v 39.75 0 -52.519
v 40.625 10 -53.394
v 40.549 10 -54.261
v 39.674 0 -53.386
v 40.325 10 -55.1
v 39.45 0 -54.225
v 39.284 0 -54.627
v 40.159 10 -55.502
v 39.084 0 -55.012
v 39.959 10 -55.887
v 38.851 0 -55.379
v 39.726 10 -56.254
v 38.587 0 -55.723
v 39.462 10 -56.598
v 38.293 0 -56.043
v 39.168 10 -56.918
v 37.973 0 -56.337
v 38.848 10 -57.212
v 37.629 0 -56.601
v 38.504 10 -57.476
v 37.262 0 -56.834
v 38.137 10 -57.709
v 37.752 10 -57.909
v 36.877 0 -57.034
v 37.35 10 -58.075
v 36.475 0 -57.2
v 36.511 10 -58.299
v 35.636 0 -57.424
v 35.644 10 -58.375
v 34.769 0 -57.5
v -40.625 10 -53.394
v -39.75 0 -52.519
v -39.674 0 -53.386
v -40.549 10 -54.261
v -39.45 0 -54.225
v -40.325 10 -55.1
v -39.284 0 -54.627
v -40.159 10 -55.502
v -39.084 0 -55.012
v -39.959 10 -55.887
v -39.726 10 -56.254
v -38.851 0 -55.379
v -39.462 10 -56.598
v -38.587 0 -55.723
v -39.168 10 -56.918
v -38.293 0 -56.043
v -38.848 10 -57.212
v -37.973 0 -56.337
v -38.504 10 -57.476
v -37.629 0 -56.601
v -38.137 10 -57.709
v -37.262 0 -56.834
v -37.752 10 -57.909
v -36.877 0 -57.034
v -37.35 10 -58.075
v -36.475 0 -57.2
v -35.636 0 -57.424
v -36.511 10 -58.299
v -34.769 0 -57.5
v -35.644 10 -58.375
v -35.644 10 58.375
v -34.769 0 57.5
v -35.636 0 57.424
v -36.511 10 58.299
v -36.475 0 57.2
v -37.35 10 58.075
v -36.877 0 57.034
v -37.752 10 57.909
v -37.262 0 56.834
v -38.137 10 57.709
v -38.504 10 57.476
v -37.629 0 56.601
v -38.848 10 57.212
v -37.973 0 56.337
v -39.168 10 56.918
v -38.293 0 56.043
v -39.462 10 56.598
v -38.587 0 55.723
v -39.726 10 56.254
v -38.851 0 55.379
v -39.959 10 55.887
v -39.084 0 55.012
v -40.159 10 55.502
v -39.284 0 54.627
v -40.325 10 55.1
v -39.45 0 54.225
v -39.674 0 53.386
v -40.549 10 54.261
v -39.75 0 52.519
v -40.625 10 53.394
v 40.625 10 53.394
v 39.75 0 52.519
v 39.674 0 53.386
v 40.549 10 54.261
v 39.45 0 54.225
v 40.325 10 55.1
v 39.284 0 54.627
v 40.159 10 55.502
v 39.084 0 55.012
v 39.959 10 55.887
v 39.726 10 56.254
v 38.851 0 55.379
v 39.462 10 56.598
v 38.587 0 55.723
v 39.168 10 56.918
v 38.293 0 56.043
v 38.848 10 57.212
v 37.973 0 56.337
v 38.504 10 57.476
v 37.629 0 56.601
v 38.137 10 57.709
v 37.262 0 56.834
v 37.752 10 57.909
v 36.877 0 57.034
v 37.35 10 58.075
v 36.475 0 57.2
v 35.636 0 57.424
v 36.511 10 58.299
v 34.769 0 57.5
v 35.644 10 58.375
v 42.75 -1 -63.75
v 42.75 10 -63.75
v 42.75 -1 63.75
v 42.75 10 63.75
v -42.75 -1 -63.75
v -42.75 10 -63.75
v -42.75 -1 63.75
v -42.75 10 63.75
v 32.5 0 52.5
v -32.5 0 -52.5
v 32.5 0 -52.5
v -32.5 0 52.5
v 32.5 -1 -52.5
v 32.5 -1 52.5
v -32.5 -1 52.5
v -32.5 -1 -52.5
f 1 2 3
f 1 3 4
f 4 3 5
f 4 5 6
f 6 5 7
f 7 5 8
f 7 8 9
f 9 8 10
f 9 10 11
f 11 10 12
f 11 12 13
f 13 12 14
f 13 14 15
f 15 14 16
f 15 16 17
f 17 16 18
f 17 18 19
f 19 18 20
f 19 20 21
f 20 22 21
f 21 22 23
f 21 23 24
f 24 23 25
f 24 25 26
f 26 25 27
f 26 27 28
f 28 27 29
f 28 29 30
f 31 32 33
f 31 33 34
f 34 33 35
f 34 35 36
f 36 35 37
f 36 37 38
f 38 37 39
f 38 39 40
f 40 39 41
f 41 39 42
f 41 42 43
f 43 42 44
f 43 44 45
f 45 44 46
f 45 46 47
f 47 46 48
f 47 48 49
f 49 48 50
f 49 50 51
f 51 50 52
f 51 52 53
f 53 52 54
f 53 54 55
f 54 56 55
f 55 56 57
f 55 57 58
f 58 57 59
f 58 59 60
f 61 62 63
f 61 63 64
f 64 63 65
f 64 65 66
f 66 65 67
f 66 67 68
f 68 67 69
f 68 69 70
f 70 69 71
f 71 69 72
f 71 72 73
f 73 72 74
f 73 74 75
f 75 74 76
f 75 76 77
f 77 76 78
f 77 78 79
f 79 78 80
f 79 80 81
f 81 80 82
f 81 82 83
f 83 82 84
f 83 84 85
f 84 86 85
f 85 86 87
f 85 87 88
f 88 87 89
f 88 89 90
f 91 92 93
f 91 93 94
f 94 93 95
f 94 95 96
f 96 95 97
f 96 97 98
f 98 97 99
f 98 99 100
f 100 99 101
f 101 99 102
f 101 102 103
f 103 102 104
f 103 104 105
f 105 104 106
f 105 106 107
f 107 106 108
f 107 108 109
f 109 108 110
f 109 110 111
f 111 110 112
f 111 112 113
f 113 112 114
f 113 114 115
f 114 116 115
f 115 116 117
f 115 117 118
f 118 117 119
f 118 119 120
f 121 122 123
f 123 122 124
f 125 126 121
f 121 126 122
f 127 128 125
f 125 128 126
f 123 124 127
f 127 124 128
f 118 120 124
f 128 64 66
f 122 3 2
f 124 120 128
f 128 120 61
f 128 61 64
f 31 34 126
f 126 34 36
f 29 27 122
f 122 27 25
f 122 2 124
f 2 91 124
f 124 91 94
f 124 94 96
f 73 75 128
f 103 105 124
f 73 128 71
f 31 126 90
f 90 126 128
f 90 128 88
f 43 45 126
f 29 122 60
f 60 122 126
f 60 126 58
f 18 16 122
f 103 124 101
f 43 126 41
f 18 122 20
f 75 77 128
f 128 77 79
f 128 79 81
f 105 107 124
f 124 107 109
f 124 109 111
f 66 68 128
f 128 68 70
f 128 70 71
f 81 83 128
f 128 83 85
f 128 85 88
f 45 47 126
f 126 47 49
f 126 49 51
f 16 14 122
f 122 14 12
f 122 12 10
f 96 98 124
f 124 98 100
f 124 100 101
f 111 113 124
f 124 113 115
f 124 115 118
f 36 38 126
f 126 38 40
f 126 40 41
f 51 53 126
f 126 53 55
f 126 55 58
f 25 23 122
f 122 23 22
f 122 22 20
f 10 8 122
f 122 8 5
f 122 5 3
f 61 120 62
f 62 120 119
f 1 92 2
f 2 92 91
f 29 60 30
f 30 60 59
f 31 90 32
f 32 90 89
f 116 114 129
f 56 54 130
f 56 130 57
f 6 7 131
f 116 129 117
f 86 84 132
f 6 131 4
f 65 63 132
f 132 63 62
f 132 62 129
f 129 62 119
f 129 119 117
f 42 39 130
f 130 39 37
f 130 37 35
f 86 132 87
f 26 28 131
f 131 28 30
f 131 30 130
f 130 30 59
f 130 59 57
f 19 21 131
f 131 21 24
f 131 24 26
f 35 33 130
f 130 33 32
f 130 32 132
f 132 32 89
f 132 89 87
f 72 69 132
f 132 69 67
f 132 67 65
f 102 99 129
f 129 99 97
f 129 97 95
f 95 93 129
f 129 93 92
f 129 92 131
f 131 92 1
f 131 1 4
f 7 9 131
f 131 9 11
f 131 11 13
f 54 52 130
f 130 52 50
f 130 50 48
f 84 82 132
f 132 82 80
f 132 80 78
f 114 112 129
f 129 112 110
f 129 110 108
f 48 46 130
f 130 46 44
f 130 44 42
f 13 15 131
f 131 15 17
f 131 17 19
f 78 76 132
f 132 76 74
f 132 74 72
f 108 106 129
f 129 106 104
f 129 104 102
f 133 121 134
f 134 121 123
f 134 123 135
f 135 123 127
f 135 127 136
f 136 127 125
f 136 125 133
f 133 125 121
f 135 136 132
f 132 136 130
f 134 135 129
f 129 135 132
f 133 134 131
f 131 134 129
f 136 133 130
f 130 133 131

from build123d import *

# Parameters (mm, degrees)
SKETCH1_W           = 85.5
SKETCH1_H           = 127.5
BOSS_EXTRUDE1_DEPTH = 10
SKETCH2_W           = 79.5
SKETCH2_H           = 115
CUT_EXTRUDE1_DEPTH  = 10
CUT_EXTRUDE1_TAPER  = -5
SKETCH4_W           = 85.5
SKETCH4_H           = 127.5
BOSS_EXTRUDE3_DEPTH = 1
SKETCH6_W           = 65
SKETCH6_H           = 105
CUT_EXTRUDE2_DEPTH  = 1.1
FILLET2_R           = 5
FILLET3_R           = 5
FILLET4_R           = 5
FILLET5_R           = 5


with BuildPart() as part:
    # Sketch1 → Boss-Extrude1 (new body)
    with BuildSketch(Plane(origin=(0, 0, 0), x_dir=(1, 0, 0), z_dir=(0, 1, 0))):
        Rectangle(SKETCH1_W, SKETCH1_H)
    extrude(amount=BOSS_EXTRUDE1_DEPTH)

    # Sketch2 → Cut-Extrude1 (cut)
    with BuildSketch(Plane.XZ):
        Rectangle(SKETCH2_W, SKETCH2_H)
    extrude(amount=-CUT_EXTRUDE1_DEPTH, taper=CUT_EXTRUDE1_TAPER, mode=Mode.SUBTRACT)

    # Sketch4 → Boss-Extrude3 (add)
    with BuildSketch(Plane.XZ):
        Rectangle(SKETCH4_W, SKETCH4_H)
    extrude(amount=BOSS_EXTRUDE3_DEPTH)

    # Sketch6 → Cut-Extrude2 (cut)
    with BuildSketch(Plane.XZ.offset(1)):
        Rectangle(SKETCH6_W, SKETCH6_H)
    extrude(amount=-CUT_EXTRUDE2_DEPTH, mode=Mode.SUBTRACT)

    # Fillet2
    fillet2_edges = [part.edges().sort_by_distance(p)[0] for p in [
        (40.187443318, 5, 57.937443318),
    ]]
    fillet(fillet2_edges, radius=FILLET2_R)

    # Fillet3
    fillet3_edges = [part.edges().sort_by_distance(p)[0] for p in [
        (-40.187443318, 5, 57.937443318),
    ]]
    fillet(fillet3_edges, radius=FILLET3_R)

    # Fillet4
    fillet4_edges = [part.edges().sort_by_distance(p)[0] for p in [
        (-40.187443318, 5, -57.937443318),
    ]]
    fillet(fillet4_edges, radius=FILLET4_R)

    # Fillet5
    fillet5_edges = [part.edges().sort_by_distance(p)[0] for p in [
        (40.187443318, 5, -57.937443318),
    ]]
    fillet(fillet5_edges, radius=FILLET5_R)


solid = part.part
